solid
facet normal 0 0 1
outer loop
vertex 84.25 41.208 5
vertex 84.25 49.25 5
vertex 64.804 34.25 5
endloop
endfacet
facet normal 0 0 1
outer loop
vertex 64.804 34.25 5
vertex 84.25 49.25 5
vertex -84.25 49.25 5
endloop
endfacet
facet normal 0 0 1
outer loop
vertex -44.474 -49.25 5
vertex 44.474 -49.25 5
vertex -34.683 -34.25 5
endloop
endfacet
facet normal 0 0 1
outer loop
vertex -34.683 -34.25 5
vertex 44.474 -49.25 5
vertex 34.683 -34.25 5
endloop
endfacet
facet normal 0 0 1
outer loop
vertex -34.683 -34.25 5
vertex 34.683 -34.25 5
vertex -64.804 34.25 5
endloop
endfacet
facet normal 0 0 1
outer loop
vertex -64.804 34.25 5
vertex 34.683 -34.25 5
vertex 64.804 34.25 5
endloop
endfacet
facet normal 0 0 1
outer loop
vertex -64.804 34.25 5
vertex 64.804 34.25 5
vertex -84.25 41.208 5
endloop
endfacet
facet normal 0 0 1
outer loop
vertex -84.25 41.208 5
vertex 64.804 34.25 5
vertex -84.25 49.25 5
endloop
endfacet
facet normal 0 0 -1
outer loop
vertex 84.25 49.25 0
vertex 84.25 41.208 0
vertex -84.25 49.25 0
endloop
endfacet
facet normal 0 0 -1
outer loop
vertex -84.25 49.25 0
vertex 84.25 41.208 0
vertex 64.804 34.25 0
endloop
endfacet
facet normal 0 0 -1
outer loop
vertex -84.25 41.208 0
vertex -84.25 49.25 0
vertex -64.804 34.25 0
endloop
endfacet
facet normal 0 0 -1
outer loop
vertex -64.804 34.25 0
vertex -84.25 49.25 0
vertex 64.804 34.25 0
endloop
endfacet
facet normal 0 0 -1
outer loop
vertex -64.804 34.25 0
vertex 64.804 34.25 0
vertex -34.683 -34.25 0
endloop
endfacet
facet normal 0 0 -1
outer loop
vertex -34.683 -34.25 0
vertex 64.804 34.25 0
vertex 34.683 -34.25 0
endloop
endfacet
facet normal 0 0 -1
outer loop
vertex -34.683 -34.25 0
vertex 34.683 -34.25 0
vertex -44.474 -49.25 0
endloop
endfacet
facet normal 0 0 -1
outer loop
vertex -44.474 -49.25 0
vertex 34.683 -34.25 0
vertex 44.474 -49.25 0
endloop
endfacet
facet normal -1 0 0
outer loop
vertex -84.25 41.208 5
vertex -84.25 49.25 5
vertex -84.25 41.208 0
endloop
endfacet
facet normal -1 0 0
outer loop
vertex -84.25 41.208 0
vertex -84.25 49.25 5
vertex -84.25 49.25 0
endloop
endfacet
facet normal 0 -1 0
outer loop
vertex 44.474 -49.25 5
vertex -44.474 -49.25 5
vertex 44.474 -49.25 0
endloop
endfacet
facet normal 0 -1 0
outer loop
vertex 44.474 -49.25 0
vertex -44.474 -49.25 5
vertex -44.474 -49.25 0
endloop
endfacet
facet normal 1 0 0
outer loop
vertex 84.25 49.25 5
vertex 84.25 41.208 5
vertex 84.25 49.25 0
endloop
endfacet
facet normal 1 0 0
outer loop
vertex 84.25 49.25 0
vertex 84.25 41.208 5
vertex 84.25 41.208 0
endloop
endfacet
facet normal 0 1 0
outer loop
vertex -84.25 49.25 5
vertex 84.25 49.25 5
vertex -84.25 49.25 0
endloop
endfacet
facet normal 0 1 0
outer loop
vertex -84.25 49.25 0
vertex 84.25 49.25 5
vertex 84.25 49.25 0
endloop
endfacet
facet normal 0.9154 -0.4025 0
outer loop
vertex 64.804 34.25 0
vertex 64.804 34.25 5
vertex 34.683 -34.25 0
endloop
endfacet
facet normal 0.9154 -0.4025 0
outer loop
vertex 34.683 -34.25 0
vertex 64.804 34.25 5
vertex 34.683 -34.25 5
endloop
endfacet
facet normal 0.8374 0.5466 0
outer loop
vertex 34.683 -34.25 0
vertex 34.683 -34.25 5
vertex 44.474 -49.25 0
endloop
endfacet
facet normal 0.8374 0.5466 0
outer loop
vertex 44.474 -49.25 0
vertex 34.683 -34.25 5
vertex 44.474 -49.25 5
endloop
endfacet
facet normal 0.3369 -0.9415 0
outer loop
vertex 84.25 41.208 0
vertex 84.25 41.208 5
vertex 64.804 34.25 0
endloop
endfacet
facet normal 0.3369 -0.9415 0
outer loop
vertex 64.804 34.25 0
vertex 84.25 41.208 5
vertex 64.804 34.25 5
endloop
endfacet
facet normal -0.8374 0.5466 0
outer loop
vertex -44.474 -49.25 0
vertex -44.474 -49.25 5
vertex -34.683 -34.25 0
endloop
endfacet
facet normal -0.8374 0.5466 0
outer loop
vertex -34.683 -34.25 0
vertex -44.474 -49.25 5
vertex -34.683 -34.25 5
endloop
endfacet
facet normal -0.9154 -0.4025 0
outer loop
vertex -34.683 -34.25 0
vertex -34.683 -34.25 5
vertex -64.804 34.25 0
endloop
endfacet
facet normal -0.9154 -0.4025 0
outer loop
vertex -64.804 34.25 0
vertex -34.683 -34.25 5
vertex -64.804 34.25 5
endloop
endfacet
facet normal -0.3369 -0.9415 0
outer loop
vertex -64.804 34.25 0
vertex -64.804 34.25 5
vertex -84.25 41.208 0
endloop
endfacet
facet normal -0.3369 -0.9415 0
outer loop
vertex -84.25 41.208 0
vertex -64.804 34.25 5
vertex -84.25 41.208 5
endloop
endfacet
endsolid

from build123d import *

# Parameters (mm, degrees)
BOSS_EXTRUDE1_DEPTH = 5
CUT_EXTRUDE1_DEPTH  = 10


with BuildPart() as part:
    # Sketch1 → Boss-Extrude1 (new body)
    with BuildSketch(Plane.XY):
        Polygon((-84.25, 41.208366892), (-44.473549128, -49.25), (44.473549128, -49.25), (84.25, 41.208366892), (84.25, 49.25), (-84.25, 49.25), align=None)
    extrude(amount=BOSS_EXTRUDE1_DEPTH)

    # Sketch2 → Cut-Extrude1 (cut)
    with BuildSketch(Plane(origin=(0, 0, 0), x_dir=(-1, 0, 0), z_dir=(0, 0, -1))):
        Polygon((44.473549128, -49.25), (34.683249526, -34.25), (64.804143572, 34.25), (84.25, 41.208366892), align=None)
        Polygon((-64.804143572, 34.25), (-34.683249526, -34.25), (-44.473549128, -49.25), (-84.25, 41.208366892), align=None)
    extrude(amount=-CUT_EXTRUDE1_DEPTH, mode=Mode.SUBTRACT)


solid = part.part
